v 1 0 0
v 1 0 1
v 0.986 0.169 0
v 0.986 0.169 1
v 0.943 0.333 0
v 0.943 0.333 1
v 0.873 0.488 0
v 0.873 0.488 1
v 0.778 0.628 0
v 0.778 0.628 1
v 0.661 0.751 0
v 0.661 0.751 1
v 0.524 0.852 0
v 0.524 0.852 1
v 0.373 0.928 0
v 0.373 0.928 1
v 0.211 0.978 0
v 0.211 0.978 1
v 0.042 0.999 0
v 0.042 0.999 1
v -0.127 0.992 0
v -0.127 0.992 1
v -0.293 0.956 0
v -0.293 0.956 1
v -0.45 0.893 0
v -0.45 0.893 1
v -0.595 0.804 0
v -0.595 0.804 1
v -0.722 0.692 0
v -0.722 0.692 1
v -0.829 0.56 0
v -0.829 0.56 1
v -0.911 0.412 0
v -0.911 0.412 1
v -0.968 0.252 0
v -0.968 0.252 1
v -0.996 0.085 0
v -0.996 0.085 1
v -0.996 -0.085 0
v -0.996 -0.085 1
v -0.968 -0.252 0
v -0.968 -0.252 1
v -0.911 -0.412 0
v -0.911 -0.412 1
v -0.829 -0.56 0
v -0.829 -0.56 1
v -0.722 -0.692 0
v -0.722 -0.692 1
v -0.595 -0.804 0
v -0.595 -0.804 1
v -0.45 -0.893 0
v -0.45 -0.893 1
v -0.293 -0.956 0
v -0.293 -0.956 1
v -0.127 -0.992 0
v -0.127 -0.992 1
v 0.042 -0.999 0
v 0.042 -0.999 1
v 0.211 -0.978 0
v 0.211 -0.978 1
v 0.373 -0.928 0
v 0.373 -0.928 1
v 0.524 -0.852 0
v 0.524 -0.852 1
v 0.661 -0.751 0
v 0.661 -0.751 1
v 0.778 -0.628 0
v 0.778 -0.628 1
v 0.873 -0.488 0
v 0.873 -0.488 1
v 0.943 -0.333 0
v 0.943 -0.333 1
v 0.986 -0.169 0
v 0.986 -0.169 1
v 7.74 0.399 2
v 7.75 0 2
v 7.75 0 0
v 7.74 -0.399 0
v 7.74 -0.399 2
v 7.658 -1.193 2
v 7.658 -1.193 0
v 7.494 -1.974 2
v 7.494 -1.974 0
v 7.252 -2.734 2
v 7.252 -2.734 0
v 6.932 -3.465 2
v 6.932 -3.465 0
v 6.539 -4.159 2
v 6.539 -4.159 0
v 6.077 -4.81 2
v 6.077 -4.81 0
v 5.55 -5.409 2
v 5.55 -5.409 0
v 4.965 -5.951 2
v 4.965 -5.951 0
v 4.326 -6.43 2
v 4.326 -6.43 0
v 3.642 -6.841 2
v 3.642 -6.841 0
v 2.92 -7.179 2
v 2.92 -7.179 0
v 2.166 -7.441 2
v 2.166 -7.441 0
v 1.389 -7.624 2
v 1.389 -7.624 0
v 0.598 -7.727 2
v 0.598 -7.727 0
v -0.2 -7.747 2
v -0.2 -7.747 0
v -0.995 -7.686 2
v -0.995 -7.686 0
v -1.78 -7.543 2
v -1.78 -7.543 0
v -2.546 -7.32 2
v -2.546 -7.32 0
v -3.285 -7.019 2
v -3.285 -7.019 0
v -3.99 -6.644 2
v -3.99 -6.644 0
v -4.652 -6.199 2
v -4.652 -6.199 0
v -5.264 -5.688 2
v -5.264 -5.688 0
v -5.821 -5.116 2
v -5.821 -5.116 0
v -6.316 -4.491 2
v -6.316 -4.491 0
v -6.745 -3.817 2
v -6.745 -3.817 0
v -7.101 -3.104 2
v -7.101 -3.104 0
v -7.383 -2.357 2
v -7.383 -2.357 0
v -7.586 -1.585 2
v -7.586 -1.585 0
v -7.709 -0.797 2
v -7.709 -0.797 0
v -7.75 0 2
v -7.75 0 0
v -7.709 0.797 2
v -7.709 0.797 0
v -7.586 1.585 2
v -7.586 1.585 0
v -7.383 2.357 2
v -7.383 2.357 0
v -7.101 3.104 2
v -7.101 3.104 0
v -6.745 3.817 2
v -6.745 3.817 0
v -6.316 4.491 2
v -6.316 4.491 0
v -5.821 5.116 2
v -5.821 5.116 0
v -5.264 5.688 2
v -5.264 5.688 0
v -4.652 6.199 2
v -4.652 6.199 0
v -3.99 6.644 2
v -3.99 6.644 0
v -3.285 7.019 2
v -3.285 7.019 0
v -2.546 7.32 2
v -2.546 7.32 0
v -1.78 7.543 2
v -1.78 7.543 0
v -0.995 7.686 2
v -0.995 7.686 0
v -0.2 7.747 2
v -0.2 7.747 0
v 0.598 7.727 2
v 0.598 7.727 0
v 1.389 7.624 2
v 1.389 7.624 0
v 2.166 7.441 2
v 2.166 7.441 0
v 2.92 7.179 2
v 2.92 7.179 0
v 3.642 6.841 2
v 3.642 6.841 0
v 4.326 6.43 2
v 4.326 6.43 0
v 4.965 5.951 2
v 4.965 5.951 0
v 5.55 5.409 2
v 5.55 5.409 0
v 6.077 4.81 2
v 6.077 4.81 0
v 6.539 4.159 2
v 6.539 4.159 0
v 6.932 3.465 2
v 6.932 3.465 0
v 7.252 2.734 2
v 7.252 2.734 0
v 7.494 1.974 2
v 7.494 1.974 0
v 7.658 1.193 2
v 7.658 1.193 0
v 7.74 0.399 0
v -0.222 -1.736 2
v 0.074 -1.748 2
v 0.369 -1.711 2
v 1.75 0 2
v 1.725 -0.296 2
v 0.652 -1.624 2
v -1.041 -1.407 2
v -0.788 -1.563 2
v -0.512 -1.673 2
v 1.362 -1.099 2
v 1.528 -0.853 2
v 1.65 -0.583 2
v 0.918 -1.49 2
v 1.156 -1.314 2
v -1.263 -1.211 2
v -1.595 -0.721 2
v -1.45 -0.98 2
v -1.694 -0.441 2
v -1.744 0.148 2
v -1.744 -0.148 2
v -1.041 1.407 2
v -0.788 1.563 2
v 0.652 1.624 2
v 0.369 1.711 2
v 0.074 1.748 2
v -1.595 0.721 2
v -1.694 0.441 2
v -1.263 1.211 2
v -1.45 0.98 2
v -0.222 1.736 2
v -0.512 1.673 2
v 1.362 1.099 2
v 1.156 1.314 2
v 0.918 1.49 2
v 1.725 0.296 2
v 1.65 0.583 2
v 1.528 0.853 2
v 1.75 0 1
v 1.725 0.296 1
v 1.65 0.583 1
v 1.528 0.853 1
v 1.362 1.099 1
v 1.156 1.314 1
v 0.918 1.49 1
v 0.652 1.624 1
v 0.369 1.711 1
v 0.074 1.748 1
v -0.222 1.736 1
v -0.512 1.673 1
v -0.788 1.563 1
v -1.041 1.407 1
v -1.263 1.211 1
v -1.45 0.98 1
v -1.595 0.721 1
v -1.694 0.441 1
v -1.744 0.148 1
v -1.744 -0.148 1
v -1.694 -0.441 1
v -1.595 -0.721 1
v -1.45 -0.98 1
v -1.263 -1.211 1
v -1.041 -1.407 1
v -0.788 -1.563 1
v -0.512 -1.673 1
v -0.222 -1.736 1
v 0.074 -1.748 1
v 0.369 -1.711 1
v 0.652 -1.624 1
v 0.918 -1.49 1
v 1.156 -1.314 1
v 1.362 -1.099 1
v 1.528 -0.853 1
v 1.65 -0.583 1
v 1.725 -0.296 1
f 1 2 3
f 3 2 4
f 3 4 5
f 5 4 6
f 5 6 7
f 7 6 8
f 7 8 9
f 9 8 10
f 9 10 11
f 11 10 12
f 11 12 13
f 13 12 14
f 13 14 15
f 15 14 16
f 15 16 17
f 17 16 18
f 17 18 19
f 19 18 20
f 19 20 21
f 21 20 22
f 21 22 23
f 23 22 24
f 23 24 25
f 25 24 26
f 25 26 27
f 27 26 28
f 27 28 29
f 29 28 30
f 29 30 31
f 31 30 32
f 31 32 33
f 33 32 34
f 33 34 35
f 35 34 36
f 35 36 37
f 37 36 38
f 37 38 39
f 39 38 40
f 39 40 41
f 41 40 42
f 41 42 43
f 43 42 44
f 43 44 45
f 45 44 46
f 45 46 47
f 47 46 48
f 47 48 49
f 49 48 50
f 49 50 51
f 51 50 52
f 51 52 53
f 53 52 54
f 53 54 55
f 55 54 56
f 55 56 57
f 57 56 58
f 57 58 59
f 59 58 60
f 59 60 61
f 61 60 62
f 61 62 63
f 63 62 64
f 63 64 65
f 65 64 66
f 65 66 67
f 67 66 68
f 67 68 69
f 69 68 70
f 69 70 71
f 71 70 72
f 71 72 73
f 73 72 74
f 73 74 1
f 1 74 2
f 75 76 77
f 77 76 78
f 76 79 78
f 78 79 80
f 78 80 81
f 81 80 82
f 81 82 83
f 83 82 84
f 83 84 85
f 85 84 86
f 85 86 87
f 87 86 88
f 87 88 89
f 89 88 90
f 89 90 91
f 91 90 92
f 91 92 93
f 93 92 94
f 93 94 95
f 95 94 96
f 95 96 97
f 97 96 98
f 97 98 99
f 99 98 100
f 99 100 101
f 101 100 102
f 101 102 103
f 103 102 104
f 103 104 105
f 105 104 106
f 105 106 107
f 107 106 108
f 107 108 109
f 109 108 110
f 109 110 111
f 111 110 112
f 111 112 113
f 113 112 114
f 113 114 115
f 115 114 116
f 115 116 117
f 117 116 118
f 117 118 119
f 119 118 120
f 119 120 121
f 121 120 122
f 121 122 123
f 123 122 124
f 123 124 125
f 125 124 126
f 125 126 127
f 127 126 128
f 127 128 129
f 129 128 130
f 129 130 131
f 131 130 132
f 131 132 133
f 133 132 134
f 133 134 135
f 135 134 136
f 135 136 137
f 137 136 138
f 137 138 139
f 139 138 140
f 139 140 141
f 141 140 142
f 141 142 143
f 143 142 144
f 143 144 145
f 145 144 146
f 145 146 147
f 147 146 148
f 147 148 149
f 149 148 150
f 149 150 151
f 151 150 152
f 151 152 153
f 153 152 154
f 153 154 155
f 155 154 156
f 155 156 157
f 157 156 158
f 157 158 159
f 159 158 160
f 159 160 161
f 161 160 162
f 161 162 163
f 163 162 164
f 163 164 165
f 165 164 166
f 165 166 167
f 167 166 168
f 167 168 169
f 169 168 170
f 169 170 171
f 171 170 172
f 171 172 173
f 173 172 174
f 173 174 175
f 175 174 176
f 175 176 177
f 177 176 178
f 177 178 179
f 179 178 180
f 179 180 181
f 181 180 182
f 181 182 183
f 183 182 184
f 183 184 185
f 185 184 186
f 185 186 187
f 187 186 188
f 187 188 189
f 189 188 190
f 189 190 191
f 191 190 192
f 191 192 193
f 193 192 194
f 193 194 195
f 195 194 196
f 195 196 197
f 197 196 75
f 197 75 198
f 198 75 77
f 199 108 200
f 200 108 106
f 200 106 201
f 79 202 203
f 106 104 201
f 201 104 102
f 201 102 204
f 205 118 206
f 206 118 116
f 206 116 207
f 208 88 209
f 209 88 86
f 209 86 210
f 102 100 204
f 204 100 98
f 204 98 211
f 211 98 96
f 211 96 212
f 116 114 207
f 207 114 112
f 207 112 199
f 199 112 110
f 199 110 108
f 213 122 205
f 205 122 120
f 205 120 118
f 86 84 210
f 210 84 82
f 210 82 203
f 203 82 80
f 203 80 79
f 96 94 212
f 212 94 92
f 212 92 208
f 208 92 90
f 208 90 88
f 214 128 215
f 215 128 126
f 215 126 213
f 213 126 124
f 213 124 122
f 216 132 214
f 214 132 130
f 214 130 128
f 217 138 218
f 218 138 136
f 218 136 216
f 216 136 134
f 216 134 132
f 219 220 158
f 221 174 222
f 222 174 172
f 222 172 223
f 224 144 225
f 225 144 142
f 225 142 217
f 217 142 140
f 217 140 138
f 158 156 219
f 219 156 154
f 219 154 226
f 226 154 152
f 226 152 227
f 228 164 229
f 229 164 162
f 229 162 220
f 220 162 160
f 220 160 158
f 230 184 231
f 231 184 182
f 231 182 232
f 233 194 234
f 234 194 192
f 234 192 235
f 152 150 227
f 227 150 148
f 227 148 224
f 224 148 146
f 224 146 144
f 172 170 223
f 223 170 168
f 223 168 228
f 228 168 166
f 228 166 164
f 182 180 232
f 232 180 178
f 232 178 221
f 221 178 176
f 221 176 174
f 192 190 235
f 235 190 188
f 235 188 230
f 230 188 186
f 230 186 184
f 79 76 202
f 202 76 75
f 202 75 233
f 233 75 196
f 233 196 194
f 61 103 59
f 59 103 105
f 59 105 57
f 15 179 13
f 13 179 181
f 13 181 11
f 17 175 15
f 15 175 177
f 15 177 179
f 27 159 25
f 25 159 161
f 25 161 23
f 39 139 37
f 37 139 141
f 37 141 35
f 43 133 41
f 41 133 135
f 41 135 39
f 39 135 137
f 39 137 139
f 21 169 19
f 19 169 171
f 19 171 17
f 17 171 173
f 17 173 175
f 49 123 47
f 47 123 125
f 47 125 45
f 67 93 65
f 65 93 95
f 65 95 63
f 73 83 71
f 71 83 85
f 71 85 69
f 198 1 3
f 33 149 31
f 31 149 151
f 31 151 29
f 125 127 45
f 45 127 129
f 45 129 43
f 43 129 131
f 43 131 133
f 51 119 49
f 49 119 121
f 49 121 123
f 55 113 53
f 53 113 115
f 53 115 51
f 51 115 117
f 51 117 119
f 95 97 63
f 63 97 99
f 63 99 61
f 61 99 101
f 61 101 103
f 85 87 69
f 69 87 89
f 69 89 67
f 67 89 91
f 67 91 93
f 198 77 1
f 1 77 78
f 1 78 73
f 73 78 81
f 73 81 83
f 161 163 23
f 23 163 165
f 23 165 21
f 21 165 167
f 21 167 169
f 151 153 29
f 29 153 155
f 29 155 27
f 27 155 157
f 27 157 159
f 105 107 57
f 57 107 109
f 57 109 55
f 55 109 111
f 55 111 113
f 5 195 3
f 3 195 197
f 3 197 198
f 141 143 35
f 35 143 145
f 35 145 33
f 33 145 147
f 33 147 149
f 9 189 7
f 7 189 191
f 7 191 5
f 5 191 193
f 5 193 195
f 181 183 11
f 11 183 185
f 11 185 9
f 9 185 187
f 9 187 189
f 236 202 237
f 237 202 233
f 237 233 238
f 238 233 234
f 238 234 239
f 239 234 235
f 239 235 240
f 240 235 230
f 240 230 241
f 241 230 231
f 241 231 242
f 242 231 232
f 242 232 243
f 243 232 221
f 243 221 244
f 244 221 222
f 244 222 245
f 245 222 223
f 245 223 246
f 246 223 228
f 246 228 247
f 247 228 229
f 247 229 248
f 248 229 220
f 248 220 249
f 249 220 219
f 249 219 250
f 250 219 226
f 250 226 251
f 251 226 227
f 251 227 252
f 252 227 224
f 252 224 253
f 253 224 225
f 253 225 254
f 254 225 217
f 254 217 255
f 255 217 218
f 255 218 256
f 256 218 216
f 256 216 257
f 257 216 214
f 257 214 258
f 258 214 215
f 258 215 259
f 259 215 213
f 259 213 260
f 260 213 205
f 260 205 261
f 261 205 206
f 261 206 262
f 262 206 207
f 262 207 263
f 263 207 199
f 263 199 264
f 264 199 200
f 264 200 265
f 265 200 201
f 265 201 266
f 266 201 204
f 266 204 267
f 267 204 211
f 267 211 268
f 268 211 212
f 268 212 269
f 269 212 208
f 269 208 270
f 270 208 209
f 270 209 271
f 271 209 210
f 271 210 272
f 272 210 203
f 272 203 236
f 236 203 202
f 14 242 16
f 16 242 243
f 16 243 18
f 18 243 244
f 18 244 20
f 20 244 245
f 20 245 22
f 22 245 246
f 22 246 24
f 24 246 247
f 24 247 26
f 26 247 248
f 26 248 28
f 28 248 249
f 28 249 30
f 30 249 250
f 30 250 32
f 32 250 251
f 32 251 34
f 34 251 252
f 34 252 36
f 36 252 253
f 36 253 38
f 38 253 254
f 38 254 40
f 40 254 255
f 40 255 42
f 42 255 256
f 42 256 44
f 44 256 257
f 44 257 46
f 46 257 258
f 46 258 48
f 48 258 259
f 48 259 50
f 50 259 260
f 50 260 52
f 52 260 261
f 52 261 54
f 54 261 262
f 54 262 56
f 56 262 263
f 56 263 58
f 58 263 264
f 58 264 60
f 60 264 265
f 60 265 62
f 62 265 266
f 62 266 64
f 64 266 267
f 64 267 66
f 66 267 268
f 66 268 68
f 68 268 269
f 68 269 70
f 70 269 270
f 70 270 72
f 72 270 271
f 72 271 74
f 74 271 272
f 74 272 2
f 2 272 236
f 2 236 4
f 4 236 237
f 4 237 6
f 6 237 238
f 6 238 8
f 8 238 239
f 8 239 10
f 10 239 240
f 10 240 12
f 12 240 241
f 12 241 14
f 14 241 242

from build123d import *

# Parameters (mm, degrees)
SKETCH_1_R          = 7.75
EXTRUDE_1_DEPTH     = 2
SKETCH_2_R          = 1
CUT_EXTRUDE_1_DEPTH = 12.141139978
SKETCH_2_3_R        = 1.75
SKETCH_2_3_R_2      = 1
CUT_EXTRUDE_2_DEPTH = 1


with BuildPart() as part:
    # 草图1 → 凸台-拉伸1 (new body)
    with BuildSketch(Plane.XY):
        Circle(SKETCH_1_R)
    extrude(amount=EXTRUDE_1_DEPTH)

    # 草图2 → 切除-拉伸1 (cut, through all)
    with BuildSketch(Plane.XY.offset(2)):
        Circle(SKETCH_2_R)
    extrude(amount=-CUT_EXTRUDE_1_DEPTH, mode=Mode.SUBTRACT)

    # 草图2<3> → 切除-拉伸2 (cut)
    with BuildSketch(Plane.XY.offset(2)):
        Circle(SKETCH_2_3_R)
        Circle(SKETCH_2_3_R_2, mode=Mode.SUBTRACT)
    extrude(amount=-CUT_EXTRUDE_2_DEPTH, mode=Mode.SUBTRACT)


solid = part.part
